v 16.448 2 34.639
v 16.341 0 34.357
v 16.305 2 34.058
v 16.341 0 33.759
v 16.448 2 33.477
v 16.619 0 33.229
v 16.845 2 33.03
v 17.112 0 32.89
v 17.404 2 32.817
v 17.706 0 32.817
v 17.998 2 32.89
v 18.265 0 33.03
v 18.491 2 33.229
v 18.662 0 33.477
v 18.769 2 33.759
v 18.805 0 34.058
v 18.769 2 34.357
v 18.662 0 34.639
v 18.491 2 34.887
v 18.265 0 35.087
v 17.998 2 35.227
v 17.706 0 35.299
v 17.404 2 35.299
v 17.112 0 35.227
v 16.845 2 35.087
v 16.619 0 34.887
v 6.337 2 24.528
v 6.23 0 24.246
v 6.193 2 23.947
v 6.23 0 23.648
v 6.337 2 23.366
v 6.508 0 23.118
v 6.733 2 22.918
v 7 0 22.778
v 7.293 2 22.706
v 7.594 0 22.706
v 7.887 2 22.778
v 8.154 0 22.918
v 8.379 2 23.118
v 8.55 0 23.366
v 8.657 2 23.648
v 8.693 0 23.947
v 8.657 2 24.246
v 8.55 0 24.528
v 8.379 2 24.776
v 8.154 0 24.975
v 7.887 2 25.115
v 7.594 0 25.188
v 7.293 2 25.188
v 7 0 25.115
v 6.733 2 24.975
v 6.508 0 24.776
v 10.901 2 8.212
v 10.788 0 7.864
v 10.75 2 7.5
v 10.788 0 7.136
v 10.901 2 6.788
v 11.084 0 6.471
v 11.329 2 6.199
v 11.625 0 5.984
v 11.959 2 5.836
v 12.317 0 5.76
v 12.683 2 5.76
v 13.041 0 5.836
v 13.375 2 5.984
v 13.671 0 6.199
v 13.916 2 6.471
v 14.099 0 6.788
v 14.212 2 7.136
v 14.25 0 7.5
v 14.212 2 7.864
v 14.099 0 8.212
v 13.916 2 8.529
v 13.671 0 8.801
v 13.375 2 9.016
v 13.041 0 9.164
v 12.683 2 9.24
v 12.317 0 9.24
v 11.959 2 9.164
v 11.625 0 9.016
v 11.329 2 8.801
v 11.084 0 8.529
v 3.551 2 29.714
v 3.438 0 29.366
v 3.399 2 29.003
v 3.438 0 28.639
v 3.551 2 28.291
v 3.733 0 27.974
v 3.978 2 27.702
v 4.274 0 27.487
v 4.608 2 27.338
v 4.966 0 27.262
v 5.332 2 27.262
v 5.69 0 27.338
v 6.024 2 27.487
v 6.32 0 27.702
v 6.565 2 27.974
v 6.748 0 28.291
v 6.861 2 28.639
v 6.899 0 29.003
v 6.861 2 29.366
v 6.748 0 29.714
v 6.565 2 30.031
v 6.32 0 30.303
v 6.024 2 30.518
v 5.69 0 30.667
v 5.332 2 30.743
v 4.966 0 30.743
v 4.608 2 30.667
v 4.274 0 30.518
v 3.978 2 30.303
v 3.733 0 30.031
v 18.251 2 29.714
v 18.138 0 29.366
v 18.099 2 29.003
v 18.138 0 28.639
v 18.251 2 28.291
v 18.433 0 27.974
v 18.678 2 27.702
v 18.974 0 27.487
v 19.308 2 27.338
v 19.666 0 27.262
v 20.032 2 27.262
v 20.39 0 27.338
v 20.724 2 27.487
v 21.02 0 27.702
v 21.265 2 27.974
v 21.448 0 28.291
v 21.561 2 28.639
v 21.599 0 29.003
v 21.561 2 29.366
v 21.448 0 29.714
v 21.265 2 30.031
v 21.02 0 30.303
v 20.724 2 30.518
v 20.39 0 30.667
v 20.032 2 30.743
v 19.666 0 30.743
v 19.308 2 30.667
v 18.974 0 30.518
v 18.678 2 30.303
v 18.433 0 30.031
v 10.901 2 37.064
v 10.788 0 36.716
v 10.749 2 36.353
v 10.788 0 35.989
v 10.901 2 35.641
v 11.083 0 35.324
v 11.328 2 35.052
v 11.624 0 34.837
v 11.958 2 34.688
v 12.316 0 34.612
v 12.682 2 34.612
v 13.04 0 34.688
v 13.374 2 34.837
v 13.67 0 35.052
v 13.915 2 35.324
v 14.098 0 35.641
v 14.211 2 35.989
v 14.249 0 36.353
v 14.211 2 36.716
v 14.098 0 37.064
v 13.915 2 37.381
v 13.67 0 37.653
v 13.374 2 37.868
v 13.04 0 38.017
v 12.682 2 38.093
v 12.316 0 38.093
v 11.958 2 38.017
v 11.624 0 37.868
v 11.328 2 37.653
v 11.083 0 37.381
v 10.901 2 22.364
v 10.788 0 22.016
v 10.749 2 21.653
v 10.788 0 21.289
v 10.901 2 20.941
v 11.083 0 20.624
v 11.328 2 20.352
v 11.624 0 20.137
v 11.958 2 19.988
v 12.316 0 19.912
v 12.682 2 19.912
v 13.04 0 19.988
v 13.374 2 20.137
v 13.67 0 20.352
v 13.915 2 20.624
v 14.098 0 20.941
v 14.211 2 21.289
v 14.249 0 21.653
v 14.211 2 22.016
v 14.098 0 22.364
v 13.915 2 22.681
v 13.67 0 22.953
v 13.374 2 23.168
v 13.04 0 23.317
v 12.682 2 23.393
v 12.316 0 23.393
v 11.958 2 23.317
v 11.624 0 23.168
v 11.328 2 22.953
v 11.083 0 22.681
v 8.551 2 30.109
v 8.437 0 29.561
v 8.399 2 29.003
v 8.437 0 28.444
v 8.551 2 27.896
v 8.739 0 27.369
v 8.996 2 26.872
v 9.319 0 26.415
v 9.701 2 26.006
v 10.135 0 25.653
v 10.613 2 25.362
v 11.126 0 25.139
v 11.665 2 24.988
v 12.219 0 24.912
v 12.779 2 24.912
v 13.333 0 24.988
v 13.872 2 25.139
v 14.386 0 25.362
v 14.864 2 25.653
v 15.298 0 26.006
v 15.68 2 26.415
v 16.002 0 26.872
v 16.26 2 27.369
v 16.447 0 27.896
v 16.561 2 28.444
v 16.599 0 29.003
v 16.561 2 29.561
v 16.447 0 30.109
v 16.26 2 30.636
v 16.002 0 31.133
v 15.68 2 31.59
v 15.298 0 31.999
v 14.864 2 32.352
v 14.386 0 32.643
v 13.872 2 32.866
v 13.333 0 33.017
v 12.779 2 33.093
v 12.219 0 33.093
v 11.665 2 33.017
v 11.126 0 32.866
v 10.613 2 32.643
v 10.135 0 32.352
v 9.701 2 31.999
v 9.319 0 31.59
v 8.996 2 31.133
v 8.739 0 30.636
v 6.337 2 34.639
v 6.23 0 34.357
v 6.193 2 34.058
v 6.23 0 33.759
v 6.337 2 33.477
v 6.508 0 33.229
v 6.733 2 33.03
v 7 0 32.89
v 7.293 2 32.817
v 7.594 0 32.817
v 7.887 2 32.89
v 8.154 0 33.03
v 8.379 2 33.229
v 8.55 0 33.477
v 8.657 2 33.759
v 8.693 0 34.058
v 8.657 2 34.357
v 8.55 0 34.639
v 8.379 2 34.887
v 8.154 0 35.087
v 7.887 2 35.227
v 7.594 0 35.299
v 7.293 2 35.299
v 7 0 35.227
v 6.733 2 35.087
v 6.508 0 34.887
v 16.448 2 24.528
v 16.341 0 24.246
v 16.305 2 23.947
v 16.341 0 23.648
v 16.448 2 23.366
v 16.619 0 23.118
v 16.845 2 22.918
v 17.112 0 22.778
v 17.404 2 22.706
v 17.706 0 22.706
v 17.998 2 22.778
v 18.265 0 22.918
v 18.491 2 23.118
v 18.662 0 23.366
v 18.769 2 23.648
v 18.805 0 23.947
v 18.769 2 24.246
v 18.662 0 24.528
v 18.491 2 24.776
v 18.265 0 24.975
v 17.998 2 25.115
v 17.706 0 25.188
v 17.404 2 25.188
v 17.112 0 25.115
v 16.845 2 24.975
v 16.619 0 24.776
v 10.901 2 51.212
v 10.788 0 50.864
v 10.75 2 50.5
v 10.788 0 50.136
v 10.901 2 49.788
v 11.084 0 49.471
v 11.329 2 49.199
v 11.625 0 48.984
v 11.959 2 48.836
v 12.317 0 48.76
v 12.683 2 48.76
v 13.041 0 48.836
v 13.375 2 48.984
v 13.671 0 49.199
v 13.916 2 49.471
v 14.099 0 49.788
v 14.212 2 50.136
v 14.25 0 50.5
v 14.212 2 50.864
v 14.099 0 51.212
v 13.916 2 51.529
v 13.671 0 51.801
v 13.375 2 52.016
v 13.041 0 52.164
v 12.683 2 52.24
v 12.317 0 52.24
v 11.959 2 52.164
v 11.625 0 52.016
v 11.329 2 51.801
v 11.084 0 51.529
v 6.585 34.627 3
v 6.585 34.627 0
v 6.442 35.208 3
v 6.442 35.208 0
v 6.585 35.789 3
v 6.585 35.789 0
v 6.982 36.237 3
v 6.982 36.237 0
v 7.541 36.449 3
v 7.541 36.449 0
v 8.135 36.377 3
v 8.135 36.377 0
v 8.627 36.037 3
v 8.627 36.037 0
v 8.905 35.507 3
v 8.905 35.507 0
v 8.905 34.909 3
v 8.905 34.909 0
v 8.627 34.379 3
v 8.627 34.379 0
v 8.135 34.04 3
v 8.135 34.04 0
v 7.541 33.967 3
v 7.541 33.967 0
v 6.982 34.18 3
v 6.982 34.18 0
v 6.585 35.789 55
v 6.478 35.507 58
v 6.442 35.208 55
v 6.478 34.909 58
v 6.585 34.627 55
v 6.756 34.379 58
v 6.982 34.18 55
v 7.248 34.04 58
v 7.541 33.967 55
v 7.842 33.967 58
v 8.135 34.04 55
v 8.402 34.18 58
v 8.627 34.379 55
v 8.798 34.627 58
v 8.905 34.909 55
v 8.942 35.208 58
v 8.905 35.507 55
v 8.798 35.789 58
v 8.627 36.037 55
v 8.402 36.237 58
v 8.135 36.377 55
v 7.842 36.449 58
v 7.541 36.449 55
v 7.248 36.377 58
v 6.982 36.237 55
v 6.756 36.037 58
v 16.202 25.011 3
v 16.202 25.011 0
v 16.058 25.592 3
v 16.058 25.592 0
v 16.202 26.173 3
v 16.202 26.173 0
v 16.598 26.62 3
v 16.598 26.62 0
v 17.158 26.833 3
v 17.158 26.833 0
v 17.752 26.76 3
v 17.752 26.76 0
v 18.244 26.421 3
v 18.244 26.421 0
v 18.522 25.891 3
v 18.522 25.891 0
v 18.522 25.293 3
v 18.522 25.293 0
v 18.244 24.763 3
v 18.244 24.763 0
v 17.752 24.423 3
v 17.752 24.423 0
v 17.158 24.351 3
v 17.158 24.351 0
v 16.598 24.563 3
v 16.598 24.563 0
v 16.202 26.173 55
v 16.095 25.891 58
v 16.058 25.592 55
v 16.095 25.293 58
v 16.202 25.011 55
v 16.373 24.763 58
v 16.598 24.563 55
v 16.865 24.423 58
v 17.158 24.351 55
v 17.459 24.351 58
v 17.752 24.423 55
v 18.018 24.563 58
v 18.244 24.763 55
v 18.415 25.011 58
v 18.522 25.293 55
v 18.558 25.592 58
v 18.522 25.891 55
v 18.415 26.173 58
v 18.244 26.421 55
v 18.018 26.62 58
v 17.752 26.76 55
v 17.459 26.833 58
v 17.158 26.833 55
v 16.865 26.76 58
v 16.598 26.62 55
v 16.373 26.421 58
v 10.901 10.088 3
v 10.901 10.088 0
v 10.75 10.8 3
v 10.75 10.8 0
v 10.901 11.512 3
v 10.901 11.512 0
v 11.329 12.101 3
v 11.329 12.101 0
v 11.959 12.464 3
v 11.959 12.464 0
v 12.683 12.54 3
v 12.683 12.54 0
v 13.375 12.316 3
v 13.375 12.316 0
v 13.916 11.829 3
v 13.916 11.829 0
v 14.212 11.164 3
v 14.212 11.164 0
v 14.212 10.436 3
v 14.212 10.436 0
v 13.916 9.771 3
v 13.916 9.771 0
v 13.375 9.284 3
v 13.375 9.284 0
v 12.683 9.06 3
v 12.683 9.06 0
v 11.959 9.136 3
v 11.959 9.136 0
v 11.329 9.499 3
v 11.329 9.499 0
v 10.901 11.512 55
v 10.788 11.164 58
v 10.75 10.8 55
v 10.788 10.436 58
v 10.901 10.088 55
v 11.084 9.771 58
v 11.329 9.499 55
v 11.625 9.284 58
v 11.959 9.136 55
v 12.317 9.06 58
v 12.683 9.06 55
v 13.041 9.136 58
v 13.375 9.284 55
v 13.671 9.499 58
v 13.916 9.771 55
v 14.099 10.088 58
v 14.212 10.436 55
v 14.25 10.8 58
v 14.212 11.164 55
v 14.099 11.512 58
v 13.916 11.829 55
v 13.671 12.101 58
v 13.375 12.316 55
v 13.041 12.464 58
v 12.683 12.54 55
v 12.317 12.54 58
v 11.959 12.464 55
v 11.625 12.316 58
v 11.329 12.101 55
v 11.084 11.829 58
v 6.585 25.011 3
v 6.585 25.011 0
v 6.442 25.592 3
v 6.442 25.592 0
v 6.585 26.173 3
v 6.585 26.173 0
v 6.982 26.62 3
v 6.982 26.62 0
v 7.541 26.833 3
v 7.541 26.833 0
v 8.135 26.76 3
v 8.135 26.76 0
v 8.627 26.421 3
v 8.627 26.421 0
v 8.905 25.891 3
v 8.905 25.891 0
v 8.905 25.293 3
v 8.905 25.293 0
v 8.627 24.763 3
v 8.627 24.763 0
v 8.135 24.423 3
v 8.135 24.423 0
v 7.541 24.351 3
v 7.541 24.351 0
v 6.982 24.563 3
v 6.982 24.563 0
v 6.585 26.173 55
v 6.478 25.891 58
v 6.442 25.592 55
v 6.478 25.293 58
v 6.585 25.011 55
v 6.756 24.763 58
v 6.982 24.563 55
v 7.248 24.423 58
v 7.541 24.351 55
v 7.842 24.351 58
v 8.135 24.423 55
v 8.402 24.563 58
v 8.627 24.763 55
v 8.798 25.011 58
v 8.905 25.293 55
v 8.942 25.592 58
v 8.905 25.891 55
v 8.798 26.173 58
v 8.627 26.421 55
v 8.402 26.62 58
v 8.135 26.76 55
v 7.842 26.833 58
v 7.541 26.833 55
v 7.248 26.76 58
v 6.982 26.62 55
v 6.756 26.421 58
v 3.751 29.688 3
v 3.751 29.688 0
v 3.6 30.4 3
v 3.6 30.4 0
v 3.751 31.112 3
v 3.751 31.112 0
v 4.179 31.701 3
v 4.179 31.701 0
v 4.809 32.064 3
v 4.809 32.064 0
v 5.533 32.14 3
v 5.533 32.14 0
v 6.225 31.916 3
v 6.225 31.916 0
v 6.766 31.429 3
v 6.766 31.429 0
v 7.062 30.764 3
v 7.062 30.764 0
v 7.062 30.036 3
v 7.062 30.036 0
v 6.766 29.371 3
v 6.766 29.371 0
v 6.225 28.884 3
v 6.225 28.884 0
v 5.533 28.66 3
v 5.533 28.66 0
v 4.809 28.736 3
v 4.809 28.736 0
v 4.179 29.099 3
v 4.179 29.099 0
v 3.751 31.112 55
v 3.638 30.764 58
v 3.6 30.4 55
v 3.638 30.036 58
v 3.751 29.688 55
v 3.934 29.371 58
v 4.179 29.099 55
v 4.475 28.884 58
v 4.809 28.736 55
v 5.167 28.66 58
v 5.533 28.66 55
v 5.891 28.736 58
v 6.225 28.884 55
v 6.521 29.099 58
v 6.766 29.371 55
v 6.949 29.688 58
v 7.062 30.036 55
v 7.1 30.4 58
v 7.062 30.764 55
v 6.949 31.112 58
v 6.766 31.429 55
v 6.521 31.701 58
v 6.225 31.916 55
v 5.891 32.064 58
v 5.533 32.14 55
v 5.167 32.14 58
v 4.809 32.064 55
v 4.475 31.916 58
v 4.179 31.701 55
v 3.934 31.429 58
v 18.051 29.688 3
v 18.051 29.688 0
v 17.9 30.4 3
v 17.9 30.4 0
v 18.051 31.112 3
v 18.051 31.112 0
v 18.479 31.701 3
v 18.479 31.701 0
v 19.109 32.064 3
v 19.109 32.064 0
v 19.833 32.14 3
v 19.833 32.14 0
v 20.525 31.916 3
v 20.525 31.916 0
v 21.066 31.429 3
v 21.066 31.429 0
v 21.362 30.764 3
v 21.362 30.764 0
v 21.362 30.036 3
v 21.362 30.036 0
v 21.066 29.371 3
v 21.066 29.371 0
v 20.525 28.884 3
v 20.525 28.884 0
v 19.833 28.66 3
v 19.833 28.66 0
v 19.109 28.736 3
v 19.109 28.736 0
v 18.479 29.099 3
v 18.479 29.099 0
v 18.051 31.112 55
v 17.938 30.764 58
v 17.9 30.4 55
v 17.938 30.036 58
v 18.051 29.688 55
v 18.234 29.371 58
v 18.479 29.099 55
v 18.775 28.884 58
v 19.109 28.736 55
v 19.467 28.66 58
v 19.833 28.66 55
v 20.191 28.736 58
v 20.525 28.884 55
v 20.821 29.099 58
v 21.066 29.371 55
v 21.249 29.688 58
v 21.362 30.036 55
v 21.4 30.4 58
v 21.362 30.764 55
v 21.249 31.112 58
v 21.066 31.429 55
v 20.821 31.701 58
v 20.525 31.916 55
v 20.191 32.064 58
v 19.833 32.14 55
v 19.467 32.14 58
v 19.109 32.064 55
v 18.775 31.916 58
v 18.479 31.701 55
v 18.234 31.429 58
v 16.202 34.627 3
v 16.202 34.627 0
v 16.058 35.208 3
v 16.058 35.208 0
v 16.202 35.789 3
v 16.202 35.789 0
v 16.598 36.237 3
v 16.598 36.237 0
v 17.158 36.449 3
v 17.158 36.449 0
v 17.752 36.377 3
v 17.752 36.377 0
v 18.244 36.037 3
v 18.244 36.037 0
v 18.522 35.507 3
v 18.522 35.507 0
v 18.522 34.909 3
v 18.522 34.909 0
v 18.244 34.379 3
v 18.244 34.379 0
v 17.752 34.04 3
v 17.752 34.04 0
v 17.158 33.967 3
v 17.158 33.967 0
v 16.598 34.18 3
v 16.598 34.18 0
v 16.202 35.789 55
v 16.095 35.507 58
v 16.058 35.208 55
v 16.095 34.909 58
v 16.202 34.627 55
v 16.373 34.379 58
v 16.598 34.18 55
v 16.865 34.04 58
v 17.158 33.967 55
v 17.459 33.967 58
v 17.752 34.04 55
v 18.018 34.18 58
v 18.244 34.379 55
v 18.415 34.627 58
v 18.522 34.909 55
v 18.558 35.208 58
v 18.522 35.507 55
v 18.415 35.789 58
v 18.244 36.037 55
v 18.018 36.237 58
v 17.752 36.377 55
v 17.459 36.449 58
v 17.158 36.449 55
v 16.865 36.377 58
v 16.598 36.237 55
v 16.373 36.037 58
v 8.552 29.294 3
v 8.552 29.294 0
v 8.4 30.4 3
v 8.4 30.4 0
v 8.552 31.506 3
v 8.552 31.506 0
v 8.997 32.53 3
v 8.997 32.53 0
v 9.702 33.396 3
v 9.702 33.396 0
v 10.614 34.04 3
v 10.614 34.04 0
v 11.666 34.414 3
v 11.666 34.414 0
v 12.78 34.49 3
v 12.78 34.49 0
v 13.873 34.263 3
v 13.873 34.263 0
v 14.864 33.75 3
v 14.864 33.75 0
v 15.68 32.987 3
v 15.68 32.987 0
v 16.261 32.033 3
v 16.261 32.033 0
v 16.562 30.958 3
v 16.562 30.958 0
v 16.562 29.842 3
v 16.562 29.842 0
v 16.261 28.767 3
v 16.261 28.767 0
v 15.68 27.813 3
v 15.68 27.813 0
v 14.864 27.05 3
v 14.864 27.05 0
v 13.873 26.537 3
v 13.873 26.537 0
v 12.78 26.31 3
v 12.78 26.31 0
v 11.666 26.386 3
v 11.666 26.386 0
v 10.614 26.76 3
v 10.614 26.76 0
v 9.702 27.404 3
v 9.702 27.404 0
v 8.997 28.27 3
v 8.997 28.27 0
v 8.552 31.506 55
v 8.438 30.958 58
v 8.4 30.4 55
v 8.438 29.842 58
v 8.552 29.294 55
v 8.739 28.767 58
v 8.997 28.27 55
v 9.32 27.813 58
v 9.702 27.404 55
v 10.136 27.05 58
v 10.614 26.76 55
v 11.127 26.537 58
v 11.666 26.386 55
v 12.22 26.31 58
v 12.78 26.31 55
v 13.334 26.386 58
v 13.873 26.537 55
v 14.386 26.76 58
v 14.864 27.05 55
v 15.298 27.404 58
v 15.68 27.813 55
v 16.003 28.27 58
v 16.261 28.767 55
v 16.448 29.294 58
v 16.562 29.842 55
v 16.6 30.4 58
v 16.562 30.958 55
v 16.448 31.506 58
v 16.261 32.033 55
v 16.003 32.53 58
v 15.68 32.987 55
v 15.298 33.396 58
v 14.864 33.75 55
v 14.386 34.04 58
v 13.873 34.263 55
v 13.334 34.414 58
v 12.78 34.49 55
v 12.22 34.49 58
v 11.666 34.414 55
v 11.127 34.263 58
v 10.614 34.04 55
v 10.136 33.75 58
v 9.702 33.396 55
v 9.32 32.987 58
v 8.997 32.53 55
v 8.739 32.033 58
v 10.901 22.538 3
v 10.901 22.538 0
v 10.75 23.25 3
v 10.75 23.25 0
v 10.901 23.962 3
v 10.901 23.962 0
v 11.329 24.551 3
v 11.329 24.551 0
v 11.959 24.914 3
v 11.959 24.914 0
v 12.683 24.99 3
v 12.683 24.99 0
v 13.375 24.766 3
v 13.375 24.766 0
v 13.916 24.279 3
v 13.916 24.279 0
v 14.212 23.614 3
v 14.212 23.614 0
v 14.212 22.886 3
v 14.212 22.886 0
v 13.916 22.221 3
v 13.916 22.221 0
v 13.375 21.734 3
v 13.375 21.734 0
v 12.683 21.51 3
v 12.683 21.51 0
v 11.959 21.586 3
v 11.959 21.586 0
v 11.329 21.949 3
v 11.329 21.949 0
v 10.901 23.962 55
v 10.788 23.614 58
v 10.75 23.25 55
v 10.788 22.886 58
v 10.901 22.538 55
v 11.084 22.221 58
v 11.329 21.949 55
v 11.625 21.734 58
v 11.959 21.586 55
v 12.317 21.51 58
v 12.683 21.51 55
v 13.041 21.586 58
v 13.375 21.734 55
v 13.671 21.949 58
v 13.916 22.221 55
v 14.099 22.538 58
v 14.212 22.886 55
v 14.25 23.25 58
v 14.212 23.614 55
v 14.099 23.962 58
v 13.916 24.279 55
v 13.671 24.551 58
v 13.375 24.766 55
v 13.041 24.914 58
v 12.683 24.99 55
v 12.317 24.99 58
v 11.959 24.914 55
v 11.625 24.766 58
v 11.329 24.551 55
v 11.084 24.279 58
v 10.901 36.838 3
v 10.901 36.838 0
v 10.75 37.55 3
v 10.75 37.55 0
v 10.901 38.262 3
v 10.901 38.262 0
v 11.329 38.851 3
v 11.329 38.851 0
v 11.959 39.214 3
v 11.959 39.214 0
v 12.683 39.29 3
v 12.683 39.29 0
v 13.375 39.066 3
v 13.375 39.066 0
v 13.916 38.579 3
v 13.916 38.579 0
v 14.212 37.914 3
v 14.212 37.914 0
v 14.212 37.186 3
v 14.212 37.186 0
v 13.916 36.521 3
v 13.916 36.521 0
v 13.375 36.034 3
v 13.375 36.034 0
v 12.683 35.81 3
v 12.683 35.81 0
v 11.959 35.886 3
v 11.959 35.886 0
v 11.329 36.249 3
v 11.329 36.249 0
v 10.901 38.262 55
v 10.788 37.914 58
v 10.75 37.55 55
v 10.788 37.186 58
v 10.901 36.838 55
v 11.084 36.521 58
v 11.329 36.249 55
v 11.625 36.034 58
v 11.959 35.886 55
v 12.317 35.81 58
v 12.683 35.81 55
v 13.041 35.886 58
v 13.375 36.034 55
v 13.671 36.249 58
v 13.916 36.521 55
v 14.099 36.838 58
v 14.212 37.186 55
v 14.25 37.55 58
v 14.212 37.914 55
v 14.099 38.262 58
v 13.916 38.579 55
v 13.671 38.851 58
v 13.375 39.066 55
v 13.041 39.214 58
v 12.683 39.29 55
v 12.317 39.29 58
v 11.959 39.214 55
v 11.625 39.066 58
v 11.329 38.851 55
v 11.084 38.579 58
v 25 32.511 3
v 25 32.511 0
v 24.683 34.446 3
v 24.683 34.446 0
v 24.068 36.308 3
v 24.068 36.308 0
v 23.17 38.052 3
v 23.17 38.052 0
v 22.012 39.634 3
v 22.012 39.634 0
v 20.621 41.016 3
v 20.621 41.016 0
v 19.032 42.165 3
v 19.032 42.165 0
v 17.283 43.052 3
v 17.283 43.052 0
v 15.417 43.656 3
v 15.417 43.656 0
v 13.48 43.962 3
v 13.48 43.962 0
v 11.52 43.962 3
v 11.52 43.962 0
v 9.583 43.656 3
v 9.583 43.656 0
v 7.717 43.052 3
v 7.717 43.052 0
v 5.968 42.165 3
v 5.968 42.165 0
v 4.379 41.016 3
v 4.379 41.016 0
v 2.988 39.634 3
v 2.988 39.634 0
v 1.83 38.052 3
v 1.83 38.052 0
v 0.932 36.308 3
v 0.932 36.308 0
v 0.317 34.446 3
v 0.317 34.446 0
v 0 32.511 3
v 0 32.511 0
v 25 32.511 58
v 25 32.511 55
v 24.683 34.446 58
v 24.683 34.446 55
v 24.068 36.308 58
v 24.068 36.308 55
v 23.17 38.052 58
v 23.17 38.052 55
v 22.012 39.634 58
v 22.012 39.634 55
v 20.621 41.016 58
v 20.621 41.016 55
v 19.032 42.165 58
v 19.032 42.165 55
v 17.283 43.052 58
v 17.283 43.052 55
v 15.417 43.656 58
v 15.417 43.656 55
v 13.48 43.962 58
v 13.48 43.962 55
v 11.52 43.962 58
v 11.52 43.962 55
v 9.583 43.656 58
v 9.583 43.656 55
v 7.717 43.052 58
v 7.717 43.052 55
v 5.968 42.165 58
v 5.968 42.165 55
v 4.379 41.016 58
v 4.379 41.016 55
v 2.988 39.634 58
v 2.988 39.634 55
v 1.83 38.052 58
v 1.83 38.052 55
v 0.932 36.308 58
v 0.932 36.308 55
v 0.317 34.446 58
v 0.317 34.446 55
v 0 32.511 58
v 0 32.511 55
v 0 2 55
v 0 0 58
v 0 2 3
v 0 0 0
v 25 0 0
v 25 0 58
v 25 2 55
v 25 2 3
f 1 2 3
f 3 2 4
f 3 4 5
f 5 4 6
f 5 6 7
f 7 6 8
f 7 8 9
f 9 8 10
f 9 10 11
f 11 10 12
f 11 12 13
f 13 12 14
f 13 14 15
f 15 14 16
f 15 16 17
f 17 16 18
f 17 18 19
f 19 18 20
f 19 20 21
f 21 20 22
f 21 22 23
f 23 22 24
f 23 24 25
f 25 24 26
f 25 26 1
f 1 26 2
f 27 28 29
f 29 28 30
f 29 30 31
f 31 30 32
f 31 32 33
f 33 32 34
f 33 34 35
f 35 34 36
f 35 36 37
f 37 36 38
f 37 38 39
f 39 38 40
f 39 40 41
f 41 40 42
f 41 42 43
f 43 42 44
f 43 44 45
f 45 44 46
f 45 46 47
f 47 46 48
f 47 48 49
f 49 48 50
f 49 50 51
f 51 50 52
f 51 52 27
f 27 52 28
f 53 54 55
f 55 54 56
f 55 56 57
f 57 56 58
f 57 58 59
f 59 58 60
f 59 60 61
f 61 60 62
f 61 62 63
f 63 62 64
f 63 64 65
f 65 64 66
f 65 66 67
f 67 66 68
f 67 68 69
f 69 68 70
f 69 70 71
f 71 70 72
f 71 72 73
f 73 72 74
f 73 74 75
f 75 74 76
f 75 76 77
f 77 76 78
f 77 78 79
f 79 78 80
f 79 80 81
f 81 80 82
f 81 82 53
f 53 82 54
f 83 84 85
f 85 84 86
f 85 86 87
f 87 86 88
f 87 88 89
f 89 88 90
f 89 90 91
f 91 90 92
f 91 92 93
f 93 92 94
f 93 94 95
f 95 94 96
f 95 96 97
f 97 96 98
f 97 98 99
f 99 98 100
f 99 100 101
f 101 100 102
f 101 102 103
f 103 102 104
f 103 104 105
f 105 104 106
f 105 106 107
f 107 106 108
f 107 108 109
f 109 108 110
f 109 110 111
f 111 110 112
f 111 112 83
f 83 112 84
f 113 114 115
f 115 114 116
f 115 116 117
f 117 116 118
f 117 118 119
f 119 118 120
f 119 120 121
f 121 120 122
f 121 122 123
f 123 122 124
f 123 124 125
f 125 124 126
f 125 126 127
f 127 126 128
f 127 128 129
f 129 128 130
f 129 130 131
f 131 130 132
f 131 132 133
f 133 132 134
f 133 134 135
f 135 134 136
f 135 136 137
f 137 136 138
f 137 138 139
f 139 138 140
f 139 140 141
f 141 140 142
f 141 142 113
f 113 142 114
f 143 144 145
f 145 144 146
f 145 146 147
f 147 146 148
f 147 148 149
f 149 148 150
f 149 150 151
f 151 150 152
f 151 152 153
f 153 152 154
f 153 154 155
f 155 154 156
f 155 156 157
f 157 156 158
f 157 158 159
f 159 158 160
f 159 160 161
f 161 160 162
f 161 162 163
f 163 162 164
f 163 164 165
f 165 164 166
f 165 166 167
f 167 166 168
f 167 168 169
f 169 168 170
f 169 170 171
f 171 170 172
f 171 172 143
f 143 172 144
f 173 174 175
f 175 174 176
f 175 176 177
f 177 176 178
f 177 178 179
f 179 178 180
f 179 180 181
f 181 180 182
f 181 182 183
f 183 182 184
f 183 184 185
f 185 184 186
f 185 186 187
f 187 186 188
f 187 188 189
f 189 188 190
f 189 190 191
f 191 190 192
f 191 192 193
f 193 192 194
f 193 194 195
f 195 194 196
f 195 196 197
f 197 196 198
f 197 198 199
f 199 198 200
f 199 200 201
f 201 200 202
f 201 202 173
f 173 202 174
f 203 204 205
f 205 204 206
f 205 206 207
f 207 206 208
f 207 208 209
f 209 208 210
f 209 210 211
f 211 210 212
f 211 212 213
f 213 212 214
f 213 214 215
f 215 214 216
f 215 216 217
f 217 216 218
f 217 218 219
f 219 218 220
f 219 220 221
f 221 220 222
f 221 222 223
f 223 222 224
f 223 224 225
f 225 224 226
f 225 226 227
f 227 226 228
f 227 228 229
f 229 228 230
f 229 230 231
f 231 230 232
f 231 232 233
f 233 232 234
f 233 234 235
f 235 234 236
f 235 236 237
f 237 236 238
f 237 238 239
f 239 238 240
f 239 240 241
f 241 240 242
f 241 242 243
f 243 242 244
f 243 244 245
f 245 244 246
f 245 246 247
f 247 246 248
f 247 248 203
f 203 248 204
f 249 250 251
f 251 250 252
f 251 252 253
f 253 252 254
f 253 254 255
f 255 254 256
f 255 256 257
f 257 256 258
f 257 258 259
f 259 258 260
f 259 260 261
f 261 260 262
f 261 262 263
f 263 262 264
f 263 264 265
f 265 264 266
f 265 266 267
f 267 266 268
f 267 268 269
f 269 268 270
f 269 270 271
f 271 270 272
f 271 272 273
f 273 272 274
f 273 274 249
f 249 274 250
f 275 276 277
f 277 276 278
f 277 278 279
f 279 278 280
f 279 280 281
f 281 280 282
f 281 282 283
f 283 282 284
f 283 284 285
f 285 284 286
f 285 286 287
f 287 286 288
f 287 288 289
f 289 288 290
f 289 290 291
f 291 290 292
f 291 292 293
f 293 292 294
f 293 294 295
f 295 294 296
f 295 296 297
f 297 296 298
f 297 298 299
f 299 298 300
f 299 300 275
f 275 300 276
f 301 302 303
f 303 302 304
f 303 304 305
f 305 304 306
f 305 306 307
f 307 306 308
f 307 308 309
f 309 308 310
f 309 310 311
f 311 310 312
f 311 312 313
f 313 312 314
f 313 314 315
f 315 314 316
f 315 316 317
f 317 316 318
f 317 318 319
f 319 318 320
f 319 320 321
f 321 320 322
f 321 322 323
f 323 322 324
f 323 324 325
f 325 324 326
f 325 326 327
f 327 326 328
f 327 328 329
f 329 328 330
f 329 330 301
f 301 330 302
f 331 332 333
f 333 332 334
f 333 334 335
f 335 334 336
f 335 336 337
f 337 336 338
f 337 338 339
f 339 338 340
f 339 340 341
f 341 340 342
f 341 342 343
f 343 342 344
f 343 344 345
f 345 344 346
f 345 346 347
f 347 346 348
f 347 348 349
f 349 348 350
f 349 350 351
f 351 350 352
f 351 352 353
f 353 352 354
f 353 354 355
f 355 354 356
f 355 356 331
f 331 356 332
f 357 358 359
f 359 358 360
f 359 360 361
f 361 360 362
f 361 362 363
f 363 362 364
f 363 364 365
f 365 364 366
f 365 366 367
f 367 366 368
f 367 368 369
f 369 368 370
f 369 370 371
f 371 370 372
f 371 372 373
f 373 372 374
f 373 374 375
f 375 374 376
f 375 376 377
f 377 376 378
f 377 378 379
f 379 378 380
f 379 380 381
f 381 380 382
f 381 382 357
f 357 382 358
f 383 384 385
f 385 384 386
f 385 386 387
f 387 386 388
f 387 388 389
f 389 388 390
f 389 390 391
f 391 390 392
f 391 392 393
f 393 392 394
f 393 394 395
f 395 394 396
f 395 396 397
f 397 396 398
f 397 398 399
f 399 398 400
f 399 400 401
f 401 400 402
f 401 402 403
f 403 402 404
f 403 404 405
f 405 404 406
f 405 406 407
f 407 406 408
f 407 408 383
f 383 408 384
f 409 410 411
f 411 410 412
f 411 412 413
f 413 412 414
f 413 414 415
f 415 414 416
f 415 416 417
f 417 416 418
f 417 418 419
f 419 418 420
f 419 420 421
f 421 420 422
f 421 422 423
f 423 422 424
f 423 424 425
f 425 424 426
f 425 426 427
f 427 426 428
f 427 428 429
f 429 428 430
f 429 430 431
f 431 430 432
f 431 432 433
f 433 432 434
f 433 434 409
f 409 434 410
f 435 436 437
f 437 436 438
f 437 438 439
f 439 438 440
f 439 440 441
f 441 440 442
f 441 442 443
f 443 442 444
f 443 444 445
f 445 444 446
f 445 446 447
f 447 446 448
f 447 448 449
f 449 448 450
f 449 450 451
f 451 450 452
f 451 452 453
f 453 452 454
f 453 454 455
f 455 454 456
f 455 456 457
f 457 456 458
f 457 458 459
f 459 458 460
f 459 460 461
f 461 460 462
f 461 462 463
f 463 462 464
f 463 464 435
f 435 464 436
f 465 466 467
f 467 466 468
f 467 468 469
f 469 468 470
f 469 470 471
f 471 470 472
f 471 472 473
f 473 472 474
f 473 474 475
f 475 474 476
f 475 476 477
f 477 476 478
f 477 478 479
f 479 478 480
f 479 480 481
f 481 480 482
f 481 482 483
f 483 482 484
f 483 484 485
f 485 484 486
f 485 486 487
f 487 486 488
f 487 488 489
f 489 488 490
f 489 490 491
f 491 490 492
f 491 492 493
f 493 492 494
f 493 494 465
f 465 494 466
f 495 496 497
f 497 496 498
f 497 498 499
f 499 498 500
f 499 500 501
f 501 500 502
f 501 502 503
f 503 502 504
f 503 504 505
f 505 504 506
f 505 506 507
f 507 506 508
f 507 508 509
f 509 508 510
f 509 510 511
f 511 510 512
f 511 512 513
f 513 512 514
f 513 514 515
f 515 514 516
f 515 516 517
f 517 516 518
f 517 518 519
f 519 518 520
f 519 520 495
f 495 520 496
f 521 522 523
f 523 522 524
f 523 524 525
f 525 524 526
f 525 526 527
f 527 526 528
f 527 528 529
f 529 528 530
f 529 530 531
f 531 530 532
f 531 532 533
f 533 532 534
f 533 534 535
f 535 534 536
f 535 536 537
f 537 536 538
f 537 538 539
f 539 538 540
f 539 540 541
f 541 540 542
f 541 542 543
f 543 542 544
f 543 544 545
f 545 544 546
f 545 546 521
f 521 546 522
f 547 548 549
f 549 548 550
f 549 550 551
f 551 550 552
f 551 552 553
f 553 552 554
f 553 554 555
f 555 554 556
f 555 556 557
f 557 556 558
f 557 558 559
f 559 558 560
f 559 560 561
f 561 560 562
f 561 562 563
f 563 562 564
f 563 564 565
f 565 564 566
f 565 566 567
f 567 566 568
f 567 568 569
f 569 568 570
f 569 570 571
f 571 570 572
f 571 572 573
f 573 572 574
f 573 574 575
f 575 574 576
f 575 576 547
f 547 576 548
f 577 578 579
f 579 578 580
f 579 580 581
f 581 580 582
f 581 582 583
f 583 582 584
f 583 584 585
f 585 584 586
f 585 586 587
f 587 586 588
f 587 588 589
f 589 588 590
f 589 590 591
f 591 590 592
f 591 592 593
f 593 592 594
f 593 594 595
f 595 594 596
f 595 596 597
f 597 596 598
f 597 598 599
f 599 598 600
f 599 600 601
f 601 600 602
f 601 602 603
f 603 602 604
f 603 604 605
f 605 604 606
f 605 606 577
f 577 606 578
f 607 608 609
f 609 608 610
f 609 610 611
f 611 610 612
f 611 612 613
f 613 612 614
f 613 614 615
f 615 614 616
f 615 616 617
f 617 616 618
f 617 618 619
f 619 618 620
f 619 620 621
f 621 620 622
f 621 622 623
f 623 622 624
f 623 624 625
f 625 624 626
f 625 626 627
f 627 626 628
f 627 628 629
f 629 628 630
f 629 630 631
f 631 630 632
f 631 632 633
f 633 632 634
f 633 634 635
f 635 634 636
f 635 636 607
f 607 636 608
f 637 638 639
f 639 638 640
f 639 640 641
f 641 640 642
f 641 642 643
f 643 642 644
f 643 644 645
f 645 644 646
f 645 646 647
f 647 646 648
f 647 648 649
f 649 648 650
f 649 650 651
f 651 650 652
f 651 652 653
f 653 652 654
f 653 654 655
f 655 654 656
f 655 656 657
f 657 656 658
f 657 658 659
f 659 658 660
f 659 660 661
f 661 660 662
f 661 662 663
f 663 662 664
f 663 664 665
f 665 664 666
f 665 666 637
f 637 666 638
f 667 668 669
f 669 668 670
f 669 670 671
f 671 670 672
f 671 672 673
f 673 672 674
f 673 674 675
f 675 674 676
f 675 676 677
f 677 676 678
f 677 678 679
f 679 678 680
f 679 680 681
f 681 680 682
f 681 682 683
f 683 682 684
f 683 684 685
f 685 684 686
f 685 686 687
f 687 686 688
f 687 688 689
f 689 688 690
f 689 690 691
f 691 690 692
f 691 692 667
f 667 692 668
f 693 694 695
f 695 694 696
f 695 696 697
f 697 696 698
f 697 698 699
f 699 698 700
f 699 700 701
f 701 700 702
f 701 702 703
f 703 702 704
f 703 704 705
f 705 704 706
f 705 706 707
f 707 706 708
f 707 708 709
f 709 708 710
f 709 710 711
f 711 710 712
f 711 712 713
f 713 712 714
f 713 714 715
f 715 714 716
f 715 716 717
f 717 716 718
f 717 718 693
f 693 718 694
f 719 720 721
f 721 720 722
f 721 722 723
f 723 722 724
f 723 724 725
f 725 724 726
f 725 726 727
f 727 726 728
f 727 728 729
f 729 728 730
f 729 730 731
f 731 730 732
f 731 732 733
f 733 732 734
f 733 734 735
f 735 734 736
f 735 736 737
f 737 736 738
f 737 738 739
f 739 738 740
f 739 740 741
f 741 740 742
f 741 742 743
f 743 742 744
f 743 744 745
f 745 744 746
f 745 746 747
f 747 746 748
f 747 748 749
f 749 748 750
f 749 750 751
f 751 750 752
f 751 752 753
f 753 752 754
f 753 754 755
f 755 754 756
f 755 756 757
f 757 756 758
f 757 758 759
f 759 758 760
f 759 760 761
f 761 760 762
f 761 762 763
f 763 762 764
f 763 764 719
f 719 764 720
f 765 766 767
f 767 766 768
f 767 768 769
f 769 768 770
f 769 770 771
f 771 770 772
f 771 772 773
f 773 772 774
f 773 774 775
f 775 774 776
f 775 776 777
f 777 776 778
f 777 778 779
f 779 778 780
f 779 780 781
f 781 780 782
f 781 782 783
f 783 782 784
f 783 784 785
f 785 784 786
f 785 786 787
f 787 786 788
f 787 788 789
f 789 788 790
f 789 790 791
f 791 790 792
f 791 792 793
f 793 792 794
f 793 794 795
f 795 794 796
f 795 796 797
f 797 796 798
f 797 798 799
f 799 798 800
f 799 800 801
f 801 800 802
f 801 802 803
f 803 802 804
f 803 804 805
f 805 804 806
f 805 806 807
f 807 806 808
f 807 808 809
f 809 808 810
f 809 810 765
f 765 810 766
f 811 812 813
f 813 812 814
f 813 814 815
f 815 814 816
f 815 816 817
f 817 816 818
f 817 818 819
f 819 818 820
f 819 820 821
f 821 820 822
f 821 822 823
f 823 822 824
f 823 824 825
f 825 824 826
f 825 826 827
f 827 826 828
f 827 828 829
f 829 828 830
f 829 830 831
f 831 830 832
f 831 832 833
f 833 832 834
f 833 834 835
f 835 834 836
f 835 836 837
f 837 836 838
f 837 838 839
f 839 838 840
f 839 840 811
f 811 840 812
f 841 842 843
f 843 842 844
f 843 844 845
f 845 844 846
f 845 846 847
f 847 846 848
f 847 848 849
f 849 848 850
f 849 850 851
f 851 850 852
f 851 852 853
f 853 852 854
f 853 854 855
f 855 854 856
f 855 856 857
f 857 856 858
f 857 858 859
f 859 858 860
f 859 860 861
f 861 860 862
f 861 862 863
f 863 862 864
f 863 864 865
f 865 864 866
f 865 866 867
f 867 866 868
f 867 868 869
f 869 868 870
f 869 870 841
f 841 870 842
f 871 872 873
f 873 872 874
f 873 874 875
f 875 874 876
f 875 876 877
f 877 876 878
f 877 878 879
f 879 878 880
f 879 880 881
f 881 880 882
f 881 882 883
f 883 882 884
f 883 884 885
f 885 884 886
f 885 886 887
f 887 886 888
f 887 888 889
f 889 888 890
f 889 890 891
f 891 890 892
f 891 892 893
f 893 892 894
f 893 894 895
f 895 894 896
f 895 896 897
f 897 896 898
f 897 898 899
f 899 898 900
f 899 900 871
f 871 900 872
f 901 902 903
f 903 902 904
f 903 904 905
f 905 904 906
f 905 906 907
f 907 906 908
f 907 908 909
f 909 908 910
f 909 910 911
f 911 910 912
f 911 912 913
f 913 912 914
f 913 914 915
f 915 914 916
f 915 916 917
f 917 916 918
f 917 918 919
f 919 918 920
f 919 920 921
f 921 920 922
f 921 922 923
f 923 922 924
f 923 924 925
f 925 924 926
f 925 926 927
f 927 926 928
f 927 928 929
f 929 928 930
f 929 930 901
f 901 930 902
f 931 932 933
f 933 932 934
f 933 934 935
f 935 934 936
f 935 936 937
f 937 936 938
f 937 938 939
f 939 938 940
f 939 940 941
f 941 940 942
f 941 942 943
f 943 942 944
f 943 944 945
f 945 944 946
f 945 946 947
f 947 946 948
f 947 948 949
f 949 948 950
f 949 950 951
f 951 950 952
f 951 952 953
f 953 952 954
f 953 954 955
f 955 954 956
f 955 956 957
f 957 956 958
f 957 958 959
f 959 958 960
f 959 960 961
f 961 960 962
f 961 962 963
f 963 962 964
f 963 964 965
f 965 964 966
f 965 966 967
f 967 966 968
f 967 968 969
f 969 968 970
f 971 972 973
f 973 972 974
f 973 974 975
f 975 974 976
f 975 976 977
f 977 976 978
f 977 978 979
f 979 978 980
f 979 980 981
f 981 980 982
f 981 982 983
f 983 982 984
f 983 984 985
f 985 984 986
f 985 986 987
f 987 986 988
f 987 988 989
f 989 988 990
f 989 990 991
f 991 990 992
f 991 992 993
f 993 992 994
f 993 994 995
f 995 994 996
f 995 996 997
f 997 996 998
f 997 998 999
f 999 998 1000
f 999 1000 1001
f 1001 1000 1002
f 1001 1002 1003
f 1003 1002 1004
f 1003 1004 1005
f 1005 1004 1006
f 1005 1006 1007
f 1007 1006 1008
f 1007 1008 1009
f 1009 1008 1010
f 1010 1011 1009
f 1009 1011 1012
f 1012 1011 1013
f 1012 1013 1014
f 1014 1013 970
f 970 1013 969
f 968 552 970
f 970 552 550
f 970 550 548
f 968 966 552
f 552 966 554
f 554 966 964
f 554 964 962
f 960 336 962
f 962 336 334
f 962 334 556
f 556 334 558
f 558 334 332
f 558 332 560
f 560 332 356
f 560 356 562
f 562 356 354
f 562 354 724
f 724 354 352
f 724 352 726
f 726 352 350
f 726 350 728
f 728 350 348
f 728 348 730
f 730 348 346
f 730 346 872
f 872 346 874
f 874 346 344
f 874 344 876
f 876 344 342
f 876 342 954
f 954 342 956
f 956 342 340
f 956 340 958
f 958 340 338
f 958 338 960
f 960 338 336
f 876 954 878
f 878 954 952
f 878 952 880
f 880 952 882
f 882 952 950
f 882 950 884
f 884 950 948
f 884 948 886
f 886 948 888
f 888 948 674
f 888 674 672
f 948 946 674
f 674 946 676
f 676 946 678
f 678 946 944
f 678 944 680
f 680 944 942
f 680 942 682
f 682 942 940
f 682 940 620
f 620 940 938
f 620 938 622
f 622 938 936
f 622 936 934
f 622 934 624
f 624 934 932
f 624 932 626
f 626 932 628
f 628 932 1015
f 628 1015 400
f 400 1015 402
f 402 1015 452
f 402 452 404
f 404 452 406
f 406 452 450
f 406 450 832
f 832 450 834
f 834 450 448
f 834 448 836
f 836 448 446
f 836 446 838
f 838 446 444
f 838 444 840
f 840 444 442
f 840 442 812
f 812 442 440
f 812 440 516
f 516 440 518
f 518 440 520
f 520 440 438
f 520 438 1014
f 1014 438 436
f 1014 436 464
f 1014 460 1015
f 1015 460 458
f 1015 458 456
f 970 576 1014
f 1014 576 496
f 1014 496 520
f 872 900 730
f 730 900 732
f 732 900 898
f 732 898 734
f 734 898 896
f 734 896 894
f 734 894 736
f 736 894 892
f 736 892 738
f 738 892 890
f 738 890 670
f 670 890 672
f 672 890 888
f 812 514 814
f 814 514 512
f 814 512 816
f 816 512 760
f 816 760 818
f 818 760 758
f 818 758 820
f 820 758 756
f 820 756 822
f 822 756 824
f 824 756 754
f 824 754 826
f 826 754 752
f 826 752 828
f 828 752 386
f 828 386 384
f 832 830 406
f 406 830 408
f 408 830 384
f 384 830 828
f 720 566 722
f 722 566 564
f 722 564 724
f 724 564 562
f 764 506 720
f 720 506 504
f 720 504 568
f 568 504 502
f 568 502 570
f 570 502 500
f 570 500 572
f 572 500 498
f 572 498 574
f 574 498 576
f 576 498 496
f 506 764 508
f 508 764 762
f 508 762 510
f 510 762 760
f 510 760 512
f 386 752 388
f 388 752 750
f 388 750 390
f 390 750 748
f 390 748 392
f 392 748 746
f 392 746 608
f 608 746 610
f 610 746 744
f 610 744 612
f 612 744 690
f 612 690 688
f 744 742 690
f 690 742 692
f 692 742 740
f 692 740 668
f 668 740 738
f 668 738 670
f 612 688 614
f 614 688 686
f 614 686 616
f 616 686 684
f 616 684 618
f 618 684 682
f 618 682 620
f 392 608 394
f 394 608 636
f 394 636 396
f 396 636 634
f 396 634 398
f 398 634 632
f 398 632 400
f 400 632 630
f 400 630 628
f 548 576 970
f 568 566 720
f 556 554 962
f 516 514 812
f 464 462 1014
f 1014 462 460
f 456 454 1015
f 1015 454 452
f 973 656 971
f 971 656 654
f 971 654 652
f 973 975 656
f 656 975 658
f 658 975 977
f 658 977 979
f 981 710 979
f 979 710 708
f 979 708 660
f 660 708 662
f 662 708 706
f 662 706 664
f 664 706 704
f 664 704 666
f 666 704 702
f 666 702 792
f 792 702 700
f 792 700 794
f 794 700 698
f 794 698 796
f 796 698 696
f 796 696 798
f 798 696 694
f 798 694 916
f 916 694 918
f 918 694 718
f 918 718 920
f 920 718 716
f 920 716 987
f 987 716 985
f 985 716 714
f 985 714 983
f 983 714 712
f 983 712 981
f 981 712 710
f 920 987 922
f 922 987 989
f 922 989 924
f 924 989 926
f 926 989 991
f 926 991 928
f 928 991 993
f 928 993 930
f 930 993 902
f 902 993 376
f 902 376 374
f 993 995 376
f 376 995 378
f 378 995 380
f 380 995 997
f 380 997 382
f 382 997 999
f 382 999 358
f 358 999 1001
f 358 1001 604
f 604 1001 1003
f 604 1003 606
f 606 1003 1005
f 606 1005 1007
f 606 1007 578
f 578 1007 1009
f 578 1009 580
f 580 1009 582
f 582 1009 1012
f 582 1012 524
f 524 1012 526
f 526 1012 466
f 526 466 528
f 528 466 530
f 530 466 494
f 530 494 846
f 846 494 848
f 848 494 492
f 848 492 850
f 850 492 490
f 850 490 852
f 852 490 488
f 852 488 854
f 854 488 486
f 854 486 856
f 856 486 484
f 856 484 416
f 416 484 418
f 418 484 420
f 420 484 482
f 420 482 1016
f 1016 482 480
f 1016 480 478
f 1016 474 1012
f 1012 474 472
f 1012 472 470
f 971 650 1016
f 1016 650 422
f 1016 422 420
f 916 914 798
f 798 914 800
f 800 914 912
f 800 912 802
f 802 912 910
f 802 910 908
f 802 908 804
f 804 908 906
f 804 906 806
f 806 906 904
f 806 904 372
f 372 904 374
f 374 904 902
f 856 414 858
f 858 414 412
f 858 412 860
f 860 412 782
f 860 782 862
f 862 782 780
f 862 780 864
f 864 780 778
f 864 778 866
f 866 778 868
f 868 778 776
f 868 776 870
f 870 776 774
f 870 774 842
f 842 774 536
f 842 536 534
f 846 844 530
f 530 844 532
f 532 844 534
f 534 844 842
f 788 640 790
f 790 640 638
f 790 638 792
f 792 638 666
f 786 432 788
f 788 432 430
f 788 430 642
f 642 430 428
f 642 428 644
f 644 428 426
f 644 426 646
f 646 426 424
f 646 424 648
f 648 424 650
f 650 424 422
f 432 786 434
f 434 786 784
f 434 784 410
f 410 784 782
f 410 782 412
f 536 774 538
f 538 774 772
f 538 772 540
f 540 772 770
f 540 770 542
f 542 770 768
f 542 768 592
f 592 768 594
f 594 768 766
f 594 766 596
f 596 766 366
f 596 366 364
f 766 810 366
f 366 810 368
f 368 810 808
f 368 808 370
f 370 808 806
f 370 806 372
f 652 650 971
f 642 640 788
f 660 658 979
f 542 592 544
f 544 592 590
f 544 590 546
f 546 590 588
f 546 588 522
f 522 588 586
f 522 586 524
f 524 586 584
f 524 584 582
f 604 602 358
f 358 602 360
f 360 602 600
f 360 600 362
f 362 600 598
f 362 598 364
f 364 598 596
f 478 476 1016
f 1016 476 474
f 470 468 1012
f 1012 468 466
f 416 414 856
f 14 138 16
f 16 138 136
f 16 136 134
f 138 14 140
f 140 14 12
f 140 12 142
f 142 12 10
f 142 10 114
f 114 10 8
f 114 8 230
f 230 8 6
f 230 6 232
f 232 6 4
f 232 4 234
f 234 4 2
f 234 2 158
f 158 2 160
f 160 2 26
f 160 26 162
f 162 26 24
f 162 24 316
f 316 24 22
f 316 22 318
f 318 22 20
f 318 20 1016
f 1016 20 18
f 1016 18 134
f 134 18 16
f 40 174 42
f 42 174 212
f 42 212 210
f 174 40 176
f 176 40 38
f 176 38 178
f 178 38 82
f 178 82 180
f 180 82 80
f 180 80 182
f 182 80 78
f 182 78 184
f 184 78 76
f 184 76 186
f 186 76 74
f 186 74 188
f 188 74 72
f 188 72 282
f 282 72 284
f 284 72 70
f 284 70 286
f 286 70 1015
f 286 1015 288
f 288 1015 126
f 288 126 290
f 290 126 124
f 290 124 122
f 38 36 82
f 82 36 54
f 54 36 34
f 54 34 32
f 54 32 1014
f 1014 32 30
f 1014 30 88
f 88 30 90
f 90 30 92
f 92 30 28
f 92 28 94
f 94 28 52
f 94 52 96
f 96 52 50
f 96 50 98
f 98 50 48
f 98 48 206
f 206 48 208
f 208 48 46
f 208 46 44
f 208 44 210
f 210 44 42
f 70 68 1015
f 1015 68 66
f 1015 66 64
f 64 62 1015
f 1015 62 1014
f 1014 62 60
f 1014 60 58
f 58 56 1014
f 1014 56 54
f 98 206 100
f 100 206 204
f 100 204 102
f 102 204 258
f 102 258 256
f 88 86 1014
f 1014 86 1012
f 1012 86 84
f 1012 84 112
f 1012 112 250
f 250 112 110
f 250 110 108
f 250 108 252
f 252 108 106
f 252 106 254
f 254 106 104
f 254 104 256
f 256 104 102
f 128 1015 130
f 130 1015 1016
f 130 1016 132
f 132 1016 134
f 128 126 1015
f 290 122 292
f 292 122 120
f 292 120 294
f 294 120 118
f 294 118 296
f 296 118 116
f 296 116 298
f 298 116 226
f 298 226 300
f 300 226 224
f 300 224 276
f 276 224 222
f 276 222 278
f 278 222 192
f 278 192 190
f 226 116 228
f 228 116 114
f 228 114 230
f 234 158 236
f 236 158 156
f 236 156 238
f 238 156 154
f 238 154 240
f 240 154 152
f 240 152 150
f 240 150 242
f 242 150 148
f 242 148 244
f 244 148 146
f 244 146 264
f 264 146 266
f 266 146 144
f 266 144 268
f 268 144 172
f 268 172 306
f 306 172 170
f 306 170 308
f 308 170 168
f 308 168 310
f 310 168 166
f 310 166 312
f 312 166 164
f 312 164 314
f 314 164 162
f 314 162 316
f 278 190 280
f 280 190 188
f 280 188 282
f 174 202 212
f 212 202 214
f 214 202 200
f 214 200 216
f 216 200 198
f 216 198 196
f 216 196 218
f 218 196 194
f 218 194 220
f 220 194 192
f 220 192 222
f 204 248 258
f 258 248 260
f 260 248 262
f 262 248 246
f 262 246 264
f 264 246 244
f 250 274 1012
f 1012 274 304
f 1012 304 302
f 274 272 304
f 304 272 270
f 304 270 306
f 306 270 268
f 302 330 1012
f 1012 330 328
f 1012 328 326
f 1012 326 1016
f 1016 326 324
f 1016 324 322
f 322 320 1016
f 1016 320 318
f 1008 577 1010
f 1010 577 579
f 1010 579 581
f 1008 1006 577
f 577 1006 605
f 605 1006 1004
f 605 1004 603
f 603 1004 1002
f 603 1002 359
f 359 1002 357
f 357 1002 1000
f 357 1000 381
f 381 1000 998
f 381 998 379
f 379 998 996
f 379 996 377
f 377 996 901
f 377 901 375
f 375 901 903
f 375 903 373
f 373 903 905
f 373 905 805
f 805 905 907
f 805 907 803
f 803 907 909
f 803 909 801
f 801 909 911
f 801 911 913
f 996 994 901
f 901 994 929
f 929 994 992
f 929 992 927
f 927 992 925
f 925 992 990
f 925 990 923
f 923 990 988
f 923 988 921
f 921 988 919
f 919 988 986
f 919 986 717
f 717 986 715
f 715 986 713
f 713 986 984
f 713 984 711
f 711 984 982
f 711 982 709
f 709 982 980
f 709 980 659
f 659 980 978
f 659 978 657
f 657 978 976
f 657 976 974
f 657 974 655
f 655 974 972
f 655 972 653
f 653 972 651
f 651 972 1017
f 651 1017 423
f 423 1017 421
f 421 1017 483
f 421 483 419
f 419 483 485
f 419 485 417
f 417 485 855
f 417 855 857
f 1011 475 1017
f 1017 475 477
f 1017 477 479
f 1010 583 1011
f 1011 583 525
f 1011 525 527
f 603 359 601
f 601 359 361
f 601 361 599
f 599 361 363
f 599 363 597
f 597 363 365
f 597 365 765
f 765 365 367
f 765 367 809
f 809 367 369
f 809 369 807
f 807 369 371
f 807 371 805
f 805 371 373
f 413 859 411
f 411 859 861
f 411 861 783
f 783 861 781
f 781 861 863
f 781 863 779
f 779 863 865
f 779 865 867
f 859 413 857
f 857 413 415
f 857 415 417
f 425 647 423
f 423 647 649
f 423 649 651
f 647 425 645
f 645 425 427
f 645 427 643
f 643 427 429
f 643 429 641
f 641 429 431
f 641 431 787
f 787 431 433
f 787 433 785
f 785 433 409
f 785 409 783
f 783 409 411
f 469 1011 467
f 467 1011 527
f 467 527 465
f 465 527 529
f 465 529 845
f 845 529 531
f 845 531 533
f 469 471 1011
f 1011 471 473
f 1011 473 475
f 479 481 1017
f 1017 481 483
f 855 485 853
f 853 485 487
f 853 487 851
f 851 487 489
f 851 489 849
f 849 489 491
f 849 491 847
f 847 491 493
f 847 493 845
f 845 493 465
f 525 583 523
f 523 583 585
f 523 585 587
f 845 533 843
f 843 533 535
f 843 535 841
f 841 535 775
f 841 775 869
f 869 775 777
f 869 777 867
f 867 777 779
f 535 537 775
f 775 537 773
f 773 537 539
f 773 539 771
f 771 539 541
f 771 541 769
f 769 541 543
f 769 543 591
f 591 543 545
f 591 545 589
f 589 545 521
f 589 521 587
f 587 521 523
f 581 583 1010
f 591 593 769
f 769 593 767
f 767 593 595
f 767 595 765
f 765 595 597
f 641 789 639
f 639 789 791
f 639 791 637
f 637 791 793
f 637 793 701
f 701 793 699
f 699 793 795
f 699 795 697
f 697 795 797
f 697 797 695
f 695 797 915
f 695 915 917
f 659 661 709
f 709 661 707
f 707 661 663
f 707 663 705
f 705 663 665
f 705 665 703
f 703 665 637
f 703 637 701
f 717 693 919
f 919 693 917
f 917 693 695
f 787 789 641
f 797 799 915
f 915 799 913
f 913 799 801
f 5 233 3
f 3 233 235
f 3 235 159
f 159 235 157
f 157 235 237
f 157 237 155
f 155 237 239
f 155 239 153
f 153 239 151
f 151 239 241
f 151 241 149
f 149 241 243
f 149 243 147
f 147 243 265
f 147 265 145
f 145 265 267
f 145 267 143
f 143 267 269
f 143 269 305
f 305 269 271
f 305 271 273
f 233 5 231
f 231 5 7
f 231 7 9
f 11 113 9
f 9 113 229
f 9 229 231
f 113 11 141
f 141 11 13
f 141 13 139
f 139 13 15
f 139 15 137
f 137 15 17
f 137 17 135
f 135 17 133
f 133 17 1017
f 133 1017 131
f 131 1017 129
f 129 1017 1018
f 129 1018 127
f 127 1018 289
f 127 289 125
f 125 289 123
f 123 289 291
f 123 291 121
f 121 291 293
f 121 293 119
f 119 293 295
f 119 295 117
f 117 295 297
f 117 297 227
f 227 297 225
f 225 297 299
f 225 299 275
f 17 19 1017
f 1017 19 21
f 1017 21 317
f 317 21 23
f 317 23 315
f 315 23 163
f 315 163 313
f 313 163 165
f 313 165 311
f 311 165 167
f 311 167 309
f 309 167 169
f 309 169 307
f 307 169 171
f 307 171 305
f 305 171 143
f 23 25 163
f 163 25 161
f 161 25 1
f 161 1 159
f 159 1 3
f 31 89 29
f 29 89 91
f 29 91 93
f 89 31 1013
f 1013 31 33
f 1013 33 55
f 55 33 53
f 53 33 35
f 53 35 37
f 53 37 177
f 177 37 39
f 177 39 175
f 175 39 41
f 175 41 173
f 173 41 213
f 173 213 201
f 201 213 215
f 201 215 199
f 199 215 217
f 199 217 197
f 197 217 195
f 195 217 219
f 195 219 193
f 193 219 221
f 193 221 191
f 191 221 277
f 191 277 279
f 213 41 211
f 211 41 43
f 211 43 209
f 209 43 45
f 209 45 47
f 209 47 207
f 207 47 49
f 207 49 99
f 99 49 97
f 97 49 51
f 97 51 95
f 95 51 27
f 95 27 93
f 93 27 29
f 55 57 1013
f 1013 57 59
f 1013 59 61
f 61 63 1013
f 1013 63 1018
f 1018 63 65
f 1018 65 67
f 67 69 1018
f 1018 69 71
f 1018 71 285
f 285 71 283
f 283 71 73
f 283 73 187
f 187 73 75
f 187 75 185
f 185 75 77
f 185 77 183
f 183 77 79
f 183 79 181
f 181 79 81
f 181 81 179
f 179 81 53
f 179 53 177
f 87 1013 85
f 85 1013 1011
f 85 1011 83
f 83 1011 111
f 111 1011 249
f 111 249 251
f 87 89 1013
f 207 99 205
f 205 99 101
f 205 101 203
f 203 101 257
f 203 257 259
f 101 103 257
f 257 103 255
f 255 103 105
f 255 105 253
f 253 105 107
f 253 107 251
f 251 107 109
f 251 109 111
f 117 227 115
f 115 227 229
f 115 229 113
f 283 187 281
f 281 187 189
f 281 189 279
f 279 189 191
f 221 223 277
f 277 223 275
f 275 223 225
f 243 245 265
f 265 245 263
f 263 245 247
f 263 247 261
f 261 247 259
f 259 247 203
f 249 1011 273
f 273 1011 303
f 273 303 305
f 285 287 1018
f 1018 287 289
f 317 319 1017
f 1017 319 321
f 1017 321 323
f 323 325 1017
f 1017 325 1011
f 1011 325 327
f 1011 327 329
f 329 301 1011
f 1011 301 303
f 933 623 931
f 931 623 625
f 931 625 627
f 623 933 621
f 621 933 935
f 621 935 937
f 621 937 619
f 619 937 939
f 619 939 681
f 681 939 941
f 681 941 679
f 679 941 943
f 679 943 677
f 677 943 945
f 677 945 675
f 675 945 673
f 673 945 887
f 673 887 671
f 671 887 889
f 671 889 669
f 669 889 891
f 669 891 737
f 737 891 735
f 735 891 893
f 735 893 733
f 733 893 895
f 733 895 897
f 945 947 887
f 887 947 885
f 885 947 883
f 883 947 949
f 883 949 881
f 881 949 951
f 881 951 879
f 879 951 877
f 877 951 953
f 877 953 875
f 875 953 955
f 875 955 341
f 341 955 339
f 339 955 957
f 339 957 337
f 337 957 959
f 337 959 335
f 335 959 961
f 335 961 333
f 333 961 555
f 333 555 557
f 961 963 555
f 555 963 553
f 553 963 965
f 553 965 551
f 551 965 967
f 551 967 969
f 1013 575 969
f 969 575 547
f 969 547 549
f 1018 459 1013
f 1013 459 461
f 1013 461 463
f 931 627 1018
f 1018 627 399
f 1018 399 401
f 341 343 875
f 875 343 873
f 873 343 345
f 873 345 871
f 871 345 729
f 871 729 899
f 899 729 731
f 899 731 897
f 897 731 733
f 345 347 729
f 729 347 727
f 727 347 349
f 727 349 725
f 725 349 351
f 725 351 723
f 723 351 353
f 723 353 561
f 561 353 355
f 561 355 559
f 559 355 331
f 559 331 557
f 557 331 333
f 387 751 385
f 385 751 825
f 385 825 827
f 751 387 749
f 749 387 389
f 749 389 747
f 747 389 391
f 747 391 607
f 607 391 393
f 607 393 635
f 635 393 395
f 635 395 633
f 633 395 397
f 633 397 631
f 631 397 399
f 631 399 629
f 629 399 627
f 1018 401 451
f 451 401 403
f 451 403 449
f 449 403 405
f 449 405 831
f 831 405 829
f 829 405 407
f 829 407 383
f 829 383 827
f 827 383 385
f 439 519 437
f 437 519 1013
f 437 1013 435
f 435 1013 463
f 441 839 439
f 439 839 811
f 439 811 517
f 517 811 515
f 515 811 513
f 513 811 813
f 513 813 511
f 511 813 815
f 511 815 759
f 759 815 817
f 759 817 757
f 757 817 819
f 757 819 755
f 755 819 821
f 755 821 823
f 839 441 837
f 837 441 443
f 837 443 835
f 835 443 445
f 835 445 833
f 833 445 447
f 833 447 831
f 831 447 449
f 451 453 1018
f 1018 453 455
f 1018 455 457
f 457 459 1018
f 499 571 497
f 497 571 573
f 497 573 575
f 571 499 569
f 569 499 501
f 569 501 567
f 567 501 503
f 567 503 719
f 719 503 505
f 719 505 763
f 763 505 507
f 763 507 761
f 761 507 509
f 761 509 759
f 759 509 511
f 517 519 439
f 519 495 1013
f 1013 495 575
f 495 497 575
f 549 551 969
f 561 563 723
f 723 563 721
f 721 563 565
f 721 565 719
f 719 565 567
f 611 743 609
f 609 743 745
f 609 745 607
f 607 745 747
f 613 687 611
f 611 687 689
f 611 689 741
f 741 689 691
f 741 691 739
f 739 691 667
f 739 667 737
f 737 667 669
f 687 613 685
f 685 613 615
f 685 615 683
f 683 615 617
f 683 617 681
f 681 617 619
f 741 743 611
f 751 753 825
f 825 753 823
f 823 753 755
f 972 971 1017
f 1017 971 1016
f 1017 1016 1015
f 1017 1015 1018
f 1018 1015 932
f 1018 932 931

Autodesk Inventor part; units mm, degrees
ref_plane "YZ Plane" through (0, 0, 0) normal (1, 0, 0) x (0, 1, 0)
ref_plane "XZ Plane" through (0, 0, 0) normal (0, 1, 0) x (-1, 0, 0)
ref_plane "XY Plane" through (0, 0, 0) normal (0, 0, 1) x (1, 0, 0)
sketch "Esboço1" plane through (0, 0, 0) normal (1, 0, 0) x (0, 1, 0)
  line L0 (0, 0) -> (50, 0)
  line L1 (50, 0) -> (50, 3)
  line L2 (50, 3) -> (2, 3)
  line L3 (2, 3) -> (2, 55)
  line L4 (2, 55) -> (50, 55)
  line L5 (50, 55) -> (50, 58)
  line L6 (50, 58) -> (0, 58)
  line L7 (0, 58) -> (0, 0)
  line L8 (2, 3) -> (0, 3)
  dimension "d84" = 52
  dimension "d85" = 3
  dimension "d86" = 3
  dimension "d87" = 3
  dimension "d90" = 2
extrude "Extrusão1" add sketch "Esboço1" along normal blind 25
sketch "Esboço2" plane through (0, 0, 58) normal (0, 0, 1) x (1, 0, 0)
  line L0 (0, 0) -> (25, 0) projected
  circle A0 centre (12.5, 10.8) radius 1.75
  circle A1 centre (12.5, 30.4) radius 4.1
  circle A2 centre (12.5, 23.25) radius 1.75
  line L1 (12.5, 30.4) -> (16.5, 30.4) construction
  line L2 (12.5, 30.4) -> (19.3, 30.4) construction
  circle A3 centre (7.6917, 25.5917) radius 1.25
  circle A4 centre (19.65, 30.4) radius 1.75
  circle A5 centre (12.5, 37.55) radius 1.75
  circle A6 centre (5.35, 30.4) radius 1.75
  circle A7 centre (17.3083, 25.5917) radius 1.25
  circle A8 centre (17.3083, 35.2083) radius 1.25
  circle A9 centre (7.6917, 35.2083) radius 1.25
  line L3 (0, 0) -> (25, 0) projected
  line L4 (29.4538, 30.4) -> (-4.4538, 30.4)
  line L5 (12.5, 39.3) -> (12.5, 0)
  line L6 (12.5, 39.3) -> (12.5, 44)
  line L7 (25, 2) -> (25, 50) projected
  line L8 (25, 50) -> (25, 30.4)
  arc A10 (25, 30.4) -> (0, 30.4) centre (12.5, 31.4555) ccw
  line L9 (0, 2) -> (0, 50) projected
  line L10 (0, 50) -> (25, 50) projected
  line L11 (0, 32.511) -> (0, 50)
  line L12 (0, 50) -> (25, 50)
  line L13 (25, 50) -> (25, 32.511)
  line L14 (0, 32.511) -> (0, 30.4)
  line L15 (25, 32.511) -> (25, 30.4)
  line L16 (25, 32.511) -> (25, 50)
  point P0 (25, 32.511)
  dimension "d11" = 3.5
  dimension "d14" = 8.2
  dimension "d26" = 3.5
  dimension "d42" = 2.5
  dimension "d50" = 1.3
  dimension "d53" = 360
  dimension "d59" = 360
  dimension "d61" = 10.8
  dimension "d62" = 39.3
  dimension "d63" = 4.7
extrude "Extrusão2" cut sketch "Esboço2" against normal through all contours A0 L5 | A1 L4 L5 | L5 L4 A1 | A2 L5 | L5 A2 | L5 A0 | A1 L5 L4 | L4 L5 A1 | L4 A6 | A6 L4 | L4 A4 | A4 L4 | L5 A5 | A5 L5 | A10 L9 L10 L7 | A3 | A7 | A8 | A9
sketch "Esboço4" plane through (0, 0, 0) normal (0, -1, 0) x (1, 0, 0)
  line L0 (0, 58) -> (25, 58) projected
  line L1 (14.25, 0) -> (10.75, 0) projected
  line L2 (25, 3) -> (25, 55) projected
  line L3 (0, 3) -> (0, 55) projected
  circle A0 centre (12.4993, 29.0025) radius 4.1
  circle A1 centre (12.4993, 21.6525) radius 1.75
  line L4 (12.4993, 29.0025) -> (16.4993, 29.0025) construction
  line L5 (12.4993, 29.0025) -> (19.2993, 29.0025) construction
  circle A2 centre (7.4434, 23.9467) radius 1.25
  circle A3 centre (19.8493, 29.0025) radius 1.75
  circle A4 centre (12.4993, 36.3525) radius 1.75
  circle A5 centre (5.1493, 29.0025) radius 1.75
  circle A6 centre (17.5551, 23.9467) radius 1.25
  circle A7 centre (17.5551, 34.0583) radius 1.25
  circle A8 centre (7.4434, 34.0583) radius 1.25
  circle A9 centre (12.5, 50.5) radius 1.75
  circle A10 centre (12.5, 7.5) radius 1.75
  line L6 (0, 0) -> (25, 0) projected
  line L7 (25, 58) -> (25, 0)
  line L8 (17.9, 3) -> (17.9, 0) projected
  line L9 (25, 58) -> (25, 0) projected
  line L10 (25, 29) -> (0, 29)
  line L11 (0, 58) -> (0, 0) projected
  line L12 (25, 58) -> (0, 58)
  line L13 (12.5, 58) -> (12.5, 0)
  point P0 (24.9565, 28.0304)
  dimension "d68" = 8.2
  dimension "d72" = 360
  dimension "d74" = 360
  dimension "d77" = 3.5
  dimension "d92" = 7.5
  dimension "d96" = 7.5
  dimension "d98" = 1.5
  dimension "d100" = 1.8
  dimension "d101" = 3.5
  dimension "d102" = 2.5
  dimension "d103" = 3.5
extrude "Extrusão3" cut sketch "Esboço4" against normal through all contours L13 A9 | A9 L13 | L10 A5 | A5 L10 | L13 A4 | A4 L13 | L10 A3 | A3 L10 | L10 L13 A0 | A0 L13 L10 | A0 L10 L13 | L13 L10 A0 | L13 A10 | A10 L13 | L13 A1 | A1 L13 | A2 | A6 | A7 | A8
properties part number "Medium FrameARRUMADO"
